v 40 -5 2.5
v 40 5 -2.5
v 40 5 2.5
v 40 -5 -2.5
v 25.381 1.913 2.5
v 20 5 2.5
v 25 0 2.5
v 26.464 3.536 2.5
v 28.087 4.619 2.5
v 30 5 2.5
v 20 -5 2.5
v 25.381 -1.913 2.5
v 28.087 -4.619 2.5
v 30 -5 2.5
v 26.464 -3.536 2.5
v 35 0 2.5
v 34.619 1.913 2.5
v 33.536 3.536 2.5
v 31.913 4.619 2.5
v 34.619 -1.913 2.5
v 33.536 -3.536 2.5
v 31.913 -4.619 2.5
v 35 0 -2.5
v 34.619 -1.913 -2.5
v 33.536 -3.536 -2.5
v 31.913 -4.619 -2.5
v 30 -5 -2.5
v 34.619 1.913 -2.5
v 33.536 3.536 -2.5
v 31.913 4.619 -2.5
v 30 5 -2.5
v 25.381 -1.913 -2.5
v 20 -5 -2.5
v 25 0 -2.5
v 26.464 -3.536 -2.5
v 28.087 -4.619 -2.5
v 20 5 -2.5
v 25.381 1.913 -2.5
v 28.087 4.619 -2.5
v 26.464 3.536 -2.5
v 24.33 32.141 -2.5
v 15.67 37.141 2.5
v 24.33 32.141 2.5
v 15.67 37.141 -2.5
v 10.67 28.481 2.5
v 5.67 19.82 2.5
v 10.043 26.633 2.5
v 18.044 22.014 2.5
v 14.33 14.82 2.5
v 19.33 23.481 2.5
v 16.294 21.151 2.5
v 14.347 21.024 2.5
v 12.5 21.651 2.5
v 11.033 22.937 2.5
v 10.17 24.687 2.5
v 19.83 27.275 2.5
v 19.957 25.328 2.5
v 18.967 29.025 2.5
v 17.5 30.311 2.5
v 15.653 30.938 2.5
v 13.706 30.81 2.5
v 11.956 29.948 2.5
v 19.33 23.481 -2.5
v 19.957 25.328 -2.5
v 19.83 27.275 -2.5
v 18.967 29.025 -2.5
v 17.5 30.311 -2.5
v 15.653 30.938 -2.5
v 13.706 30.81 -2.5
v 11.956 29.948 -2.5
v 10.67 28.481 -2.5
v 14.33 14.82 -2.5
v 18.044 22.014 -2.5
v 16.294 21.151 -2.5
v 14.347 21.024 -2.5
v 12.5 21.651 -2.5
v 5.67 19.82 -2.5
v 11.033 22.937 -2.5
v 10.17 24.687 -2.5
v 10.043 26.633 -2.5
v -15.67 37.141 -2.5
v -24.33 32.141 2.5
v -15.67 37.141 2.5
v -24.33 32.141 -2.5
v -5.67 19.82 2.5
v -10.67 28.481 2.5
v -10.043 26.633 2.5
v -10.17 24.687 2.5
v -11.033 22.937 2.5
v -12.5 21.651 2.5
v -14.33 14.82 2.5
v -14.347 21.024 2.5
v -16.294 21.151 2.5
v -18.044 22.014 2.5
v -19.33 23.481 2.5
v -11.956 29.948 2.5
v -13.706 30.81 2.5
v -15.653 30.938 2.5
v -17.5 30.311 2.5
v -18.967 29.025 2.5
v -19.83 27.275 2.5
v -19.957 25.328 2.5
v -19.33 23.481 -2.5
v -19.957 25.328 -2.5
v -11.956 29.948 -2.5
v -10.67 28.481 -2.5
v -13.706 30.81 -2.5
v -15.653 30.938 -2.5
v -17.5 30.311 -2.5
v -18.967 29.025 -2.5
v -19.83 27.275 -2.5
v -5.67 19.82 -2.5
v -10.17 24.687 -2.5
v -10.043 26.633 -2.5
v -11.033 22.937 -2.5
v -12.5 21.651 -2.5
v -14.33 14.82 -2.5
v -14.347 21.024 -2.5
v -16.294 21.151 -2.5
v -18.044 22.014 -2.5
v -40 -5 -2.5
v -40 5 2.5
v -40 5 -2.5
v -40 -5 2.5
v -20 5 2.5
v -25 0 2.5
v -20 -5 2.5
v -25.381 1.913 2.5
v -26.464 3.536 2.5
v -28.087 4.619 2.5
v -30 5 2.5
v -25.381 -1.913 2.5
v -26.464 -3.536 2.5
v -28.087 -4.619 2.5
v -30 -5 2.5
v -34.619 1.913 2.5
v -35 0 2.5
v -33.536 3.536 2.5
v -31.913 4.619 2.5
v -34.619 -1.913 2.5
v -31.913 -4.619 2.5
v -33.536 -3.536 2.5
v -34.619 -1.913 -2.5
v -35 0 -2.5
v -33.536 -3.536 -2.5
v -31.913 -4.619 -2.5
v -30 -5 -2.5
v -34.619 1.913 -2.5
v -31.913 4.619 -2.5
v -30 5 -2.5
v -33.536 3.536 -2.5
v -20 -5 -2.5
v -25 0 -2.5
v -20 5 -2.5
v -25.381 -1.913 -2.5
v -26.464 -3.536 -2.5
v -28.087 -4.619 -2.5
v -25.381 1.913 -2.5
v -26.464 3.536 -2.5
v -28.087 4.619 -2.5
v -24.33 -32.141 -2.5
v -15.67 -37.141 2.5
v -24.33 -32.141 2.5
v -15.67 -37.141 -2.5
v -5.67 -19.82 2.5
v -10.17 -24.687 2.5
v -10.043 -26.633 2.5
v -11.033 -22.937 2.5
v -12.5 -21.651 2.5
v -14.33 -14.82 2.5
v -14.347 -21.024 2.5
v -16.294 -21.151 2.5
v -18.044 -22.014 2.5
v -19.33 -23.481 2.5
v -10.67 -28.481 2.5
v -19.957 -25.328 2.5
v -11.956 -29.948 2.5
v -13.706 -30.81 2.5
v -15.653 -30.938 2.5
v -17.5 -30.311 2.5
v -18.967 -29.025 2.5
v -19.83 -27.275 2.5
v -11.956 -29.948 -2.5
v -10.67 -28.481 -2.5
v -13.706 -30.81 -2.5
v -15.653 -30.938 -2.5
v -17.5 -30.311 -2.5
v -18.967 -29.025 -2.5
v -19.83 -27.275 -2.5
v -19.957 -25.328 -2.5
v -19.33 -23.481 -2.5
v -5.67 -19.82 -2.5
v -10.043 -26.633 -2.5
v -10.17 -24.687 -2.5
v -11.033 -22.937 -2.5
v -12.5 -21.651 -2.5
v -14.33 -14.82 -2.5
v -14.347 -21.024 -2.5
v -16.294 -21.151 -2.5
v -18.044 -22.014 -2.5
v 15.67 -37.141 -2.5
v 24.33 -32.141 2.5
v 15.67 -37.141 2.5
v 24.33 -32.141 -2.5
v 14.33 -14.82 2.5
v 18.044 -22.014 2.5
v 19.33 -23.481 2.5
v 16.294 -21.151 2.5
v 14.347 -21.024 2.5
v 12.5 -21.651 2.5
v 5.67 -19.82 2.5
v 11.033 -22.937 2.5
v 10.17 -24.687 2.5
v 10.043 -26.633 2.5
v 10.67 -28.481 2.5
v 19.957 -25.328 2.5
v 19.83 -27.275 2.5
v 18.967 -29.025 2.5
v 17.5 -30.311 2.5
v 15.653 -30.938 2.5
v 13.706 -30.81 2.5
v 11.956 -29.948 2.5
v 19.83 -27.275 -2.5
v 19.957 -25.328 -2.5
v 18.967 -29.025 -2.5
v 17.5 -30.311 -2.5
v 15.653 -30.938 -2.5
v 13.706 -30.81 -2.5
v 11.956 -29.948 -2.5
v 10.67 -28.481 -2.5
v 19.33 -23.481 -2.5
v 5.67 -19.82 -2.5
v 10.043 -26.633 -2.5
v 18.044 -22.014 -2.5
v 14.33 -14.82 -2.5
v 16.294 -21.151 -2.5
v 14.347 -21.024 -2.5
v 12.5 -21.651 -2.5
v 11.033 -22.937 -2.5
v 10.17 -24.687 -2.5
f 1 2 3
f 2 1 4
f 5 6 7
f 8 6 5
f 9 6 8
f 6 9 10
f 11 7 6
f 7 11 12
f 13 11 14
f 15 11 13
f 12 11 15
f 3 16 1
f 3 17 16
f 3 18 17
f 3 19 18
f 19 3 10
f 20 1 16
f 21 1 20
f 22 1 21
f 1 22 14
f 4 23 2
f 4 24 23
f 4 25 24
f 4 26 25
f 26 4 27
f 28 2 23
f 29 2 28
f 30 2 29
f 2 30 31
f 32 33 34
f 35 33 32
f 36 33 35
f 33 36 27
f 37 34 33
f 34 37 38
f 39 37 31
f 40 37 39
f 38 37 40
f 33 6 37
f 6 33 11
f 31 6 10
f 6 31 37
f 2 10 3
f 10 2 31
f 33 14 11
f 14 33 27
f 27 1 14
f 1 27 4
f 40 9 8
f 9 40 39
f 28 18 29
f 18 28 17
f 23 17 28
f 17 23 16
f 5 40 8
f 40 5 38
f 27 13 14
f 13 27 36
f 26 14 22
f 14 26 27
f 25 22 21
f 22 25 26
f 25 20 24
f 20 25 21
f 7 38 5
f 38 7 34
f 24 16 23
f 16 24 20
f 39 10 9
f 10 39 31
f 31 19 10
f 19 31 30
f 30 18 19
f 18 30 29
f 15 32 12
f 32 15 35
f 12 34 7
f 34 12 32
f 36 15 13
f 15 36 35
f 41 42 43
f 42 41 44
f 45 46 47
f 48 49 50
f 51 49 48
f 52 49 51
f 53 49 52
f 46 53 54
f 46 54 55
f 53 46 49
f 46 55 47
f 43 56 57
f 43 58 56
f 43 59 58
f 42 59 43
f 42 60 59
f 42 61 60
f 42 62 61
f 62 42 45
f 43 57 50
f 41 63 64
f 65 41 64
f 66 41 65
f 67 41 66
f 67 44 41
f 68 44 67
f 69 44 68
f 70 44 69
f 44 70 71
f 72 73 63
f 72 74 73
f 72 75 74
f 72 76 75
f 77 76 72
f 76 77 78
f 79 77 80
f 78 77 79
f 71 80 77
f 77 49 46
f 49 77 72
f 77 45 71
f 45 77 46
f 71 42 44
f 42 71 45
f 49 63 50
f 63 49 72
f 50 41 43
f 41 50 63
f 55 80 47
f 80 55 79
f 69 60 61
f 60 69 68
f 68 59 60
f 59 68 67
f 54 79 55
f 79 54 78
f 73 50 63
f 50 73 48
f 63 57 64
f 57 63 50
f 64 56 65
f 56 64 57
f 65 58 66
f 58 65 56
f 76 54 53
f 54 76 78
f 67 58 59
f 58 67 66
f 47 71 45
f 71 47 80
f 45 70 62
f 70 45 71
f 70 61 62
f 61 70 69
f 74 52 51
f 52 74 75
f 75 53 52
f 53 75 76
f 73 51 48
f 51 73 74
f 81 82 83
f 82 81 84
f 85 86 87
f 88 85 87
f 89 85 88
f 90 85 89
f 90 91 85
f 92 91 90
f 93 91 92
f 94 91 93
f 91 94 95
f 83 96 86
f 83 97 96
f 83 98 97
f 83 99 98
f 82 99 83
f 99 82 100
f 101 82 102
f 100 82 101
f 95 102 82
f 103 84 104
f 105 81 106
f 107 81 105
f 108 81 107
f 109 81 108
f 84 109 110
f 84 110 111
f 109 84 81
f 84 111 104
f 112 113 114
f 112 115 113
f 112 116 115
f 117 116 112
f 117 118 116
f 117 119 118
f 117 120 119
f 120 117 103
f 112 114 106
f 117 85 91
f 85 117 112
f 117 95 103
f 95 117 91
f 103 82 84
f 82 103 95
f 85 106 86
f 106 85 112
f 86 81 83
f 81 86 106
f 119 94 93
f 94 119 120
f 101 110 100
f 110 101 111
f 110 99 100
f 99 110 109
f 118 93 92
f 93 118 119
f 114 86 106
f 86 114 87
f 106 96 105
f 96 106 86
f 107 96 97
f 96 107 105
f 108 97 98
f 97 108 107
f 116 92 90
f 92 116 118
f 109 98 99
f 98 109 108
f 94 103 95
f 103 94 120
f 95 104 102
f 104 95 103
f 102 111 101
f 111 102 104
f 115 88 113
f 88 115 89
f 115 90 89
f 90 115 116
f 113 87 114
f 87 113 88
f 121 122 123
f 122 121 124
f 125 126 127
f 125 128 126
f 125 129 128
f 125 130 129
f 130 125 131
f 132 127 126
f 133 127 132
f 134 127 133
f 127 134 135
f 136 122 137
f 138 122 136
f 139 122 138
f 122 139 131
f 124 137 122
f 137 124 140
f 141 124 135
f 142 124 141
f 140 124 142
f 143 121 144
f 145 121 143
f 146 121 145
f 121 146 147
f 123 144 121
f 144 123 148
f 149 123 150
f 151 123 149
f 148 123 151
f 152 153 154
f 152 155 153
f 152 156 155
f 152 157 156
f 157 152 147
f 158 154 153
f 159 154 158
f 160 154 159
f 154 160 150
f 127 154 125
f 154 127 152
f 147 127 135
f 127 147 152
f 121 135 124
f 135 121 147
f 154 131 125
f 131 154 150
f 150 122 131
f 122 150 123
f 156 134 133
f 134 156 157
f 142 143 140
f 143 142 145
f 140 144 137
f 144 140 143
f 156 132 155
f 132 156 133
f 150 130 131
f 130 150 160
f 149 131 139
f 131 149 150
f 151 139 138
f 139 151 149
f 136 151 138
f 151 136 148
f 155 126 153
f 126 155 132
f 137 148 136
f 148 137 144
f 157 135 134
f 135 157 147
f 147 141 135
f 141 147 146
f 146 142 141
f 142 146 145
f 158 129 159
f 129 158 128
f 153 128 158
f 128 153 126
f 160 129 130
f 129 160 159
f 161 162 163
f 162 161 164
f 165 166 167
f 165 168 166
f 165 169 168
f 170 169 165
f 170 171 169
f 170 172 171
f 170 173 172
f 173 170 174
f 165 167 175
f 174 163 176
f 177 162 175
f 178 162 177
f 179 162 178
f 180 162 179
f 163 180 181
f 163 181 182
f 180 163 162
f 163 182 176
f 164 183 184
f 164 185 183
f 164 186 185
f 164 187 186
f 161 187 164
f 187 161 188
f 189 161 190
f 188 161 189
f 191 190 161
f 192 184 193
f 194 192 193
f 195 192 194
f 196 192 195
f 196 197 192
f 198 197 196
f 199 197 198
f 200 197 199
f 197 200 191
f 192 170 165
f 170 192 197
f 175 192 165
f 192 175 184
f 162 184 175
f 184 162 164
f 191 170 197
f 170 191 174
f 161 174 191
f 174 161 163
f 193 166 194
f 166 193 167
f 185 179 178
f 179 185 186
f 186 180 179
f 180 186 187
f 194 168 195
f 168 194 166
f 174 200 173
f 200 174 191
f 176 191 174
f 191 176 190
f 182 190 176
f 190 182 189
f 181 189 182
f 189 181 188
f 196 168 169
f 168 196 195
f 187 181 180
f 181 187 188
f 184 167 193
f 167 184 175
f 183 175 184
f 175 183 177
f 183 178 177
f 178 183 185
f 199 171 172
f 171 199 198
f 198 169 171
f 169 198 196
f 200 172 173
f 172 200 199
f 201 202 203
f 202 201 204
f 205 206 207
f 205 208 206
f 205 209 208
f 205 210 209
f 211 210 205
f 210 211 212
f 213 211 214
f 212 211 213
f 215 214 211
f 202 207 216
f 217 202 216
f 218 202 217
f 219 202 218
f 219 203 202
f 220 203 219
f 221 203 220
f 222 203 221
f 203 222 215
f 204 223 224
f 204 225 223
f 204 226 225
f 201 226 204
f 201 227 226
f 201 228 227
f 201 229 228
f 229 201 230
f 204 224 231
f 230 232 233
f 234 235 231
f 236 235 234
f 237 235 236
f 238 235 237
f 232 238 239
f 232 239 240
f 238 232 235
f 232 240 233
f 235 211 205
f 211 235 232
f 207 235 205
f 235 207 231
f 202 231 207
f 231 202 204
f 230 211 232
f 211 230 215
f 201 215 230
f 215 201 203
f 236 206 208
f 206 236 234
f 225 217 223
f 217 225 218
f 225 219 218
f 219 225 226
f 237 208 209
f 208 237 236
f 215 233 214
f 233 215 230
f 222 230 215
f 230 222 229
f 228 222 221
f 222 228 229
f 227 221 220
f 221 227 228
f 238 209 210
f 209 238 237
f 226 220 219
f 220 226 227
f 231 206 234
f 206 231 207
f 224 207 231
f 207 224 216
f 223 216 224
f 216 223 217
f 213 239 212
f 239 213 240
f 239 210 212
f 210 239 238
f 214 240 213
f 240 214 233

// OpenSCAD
// Function to create a single central block
module central_block() {
    difference() {
        // Main rectangular block
        cube([20, 10, 5], center = true);
        
        // Protruding rectangular extensions
        translate([-15, 0, 0]) cube([10, 10, 5], center = true);
        translate([15, 0, 0]) cube([10, 10, 5], center = true);
        
        // Central cylindrical hole
        cylinder(h = 5, r = 5, center = true);
    }
}

// Arrange six central blocks in a uniform layer
module layer_1() {
    for (i = [0:5]) {
        rotate([0, 0, i * 60]) translate([30, 0, 0]) central_block();
    }
}

// Generate the 3D model
layer_1();
